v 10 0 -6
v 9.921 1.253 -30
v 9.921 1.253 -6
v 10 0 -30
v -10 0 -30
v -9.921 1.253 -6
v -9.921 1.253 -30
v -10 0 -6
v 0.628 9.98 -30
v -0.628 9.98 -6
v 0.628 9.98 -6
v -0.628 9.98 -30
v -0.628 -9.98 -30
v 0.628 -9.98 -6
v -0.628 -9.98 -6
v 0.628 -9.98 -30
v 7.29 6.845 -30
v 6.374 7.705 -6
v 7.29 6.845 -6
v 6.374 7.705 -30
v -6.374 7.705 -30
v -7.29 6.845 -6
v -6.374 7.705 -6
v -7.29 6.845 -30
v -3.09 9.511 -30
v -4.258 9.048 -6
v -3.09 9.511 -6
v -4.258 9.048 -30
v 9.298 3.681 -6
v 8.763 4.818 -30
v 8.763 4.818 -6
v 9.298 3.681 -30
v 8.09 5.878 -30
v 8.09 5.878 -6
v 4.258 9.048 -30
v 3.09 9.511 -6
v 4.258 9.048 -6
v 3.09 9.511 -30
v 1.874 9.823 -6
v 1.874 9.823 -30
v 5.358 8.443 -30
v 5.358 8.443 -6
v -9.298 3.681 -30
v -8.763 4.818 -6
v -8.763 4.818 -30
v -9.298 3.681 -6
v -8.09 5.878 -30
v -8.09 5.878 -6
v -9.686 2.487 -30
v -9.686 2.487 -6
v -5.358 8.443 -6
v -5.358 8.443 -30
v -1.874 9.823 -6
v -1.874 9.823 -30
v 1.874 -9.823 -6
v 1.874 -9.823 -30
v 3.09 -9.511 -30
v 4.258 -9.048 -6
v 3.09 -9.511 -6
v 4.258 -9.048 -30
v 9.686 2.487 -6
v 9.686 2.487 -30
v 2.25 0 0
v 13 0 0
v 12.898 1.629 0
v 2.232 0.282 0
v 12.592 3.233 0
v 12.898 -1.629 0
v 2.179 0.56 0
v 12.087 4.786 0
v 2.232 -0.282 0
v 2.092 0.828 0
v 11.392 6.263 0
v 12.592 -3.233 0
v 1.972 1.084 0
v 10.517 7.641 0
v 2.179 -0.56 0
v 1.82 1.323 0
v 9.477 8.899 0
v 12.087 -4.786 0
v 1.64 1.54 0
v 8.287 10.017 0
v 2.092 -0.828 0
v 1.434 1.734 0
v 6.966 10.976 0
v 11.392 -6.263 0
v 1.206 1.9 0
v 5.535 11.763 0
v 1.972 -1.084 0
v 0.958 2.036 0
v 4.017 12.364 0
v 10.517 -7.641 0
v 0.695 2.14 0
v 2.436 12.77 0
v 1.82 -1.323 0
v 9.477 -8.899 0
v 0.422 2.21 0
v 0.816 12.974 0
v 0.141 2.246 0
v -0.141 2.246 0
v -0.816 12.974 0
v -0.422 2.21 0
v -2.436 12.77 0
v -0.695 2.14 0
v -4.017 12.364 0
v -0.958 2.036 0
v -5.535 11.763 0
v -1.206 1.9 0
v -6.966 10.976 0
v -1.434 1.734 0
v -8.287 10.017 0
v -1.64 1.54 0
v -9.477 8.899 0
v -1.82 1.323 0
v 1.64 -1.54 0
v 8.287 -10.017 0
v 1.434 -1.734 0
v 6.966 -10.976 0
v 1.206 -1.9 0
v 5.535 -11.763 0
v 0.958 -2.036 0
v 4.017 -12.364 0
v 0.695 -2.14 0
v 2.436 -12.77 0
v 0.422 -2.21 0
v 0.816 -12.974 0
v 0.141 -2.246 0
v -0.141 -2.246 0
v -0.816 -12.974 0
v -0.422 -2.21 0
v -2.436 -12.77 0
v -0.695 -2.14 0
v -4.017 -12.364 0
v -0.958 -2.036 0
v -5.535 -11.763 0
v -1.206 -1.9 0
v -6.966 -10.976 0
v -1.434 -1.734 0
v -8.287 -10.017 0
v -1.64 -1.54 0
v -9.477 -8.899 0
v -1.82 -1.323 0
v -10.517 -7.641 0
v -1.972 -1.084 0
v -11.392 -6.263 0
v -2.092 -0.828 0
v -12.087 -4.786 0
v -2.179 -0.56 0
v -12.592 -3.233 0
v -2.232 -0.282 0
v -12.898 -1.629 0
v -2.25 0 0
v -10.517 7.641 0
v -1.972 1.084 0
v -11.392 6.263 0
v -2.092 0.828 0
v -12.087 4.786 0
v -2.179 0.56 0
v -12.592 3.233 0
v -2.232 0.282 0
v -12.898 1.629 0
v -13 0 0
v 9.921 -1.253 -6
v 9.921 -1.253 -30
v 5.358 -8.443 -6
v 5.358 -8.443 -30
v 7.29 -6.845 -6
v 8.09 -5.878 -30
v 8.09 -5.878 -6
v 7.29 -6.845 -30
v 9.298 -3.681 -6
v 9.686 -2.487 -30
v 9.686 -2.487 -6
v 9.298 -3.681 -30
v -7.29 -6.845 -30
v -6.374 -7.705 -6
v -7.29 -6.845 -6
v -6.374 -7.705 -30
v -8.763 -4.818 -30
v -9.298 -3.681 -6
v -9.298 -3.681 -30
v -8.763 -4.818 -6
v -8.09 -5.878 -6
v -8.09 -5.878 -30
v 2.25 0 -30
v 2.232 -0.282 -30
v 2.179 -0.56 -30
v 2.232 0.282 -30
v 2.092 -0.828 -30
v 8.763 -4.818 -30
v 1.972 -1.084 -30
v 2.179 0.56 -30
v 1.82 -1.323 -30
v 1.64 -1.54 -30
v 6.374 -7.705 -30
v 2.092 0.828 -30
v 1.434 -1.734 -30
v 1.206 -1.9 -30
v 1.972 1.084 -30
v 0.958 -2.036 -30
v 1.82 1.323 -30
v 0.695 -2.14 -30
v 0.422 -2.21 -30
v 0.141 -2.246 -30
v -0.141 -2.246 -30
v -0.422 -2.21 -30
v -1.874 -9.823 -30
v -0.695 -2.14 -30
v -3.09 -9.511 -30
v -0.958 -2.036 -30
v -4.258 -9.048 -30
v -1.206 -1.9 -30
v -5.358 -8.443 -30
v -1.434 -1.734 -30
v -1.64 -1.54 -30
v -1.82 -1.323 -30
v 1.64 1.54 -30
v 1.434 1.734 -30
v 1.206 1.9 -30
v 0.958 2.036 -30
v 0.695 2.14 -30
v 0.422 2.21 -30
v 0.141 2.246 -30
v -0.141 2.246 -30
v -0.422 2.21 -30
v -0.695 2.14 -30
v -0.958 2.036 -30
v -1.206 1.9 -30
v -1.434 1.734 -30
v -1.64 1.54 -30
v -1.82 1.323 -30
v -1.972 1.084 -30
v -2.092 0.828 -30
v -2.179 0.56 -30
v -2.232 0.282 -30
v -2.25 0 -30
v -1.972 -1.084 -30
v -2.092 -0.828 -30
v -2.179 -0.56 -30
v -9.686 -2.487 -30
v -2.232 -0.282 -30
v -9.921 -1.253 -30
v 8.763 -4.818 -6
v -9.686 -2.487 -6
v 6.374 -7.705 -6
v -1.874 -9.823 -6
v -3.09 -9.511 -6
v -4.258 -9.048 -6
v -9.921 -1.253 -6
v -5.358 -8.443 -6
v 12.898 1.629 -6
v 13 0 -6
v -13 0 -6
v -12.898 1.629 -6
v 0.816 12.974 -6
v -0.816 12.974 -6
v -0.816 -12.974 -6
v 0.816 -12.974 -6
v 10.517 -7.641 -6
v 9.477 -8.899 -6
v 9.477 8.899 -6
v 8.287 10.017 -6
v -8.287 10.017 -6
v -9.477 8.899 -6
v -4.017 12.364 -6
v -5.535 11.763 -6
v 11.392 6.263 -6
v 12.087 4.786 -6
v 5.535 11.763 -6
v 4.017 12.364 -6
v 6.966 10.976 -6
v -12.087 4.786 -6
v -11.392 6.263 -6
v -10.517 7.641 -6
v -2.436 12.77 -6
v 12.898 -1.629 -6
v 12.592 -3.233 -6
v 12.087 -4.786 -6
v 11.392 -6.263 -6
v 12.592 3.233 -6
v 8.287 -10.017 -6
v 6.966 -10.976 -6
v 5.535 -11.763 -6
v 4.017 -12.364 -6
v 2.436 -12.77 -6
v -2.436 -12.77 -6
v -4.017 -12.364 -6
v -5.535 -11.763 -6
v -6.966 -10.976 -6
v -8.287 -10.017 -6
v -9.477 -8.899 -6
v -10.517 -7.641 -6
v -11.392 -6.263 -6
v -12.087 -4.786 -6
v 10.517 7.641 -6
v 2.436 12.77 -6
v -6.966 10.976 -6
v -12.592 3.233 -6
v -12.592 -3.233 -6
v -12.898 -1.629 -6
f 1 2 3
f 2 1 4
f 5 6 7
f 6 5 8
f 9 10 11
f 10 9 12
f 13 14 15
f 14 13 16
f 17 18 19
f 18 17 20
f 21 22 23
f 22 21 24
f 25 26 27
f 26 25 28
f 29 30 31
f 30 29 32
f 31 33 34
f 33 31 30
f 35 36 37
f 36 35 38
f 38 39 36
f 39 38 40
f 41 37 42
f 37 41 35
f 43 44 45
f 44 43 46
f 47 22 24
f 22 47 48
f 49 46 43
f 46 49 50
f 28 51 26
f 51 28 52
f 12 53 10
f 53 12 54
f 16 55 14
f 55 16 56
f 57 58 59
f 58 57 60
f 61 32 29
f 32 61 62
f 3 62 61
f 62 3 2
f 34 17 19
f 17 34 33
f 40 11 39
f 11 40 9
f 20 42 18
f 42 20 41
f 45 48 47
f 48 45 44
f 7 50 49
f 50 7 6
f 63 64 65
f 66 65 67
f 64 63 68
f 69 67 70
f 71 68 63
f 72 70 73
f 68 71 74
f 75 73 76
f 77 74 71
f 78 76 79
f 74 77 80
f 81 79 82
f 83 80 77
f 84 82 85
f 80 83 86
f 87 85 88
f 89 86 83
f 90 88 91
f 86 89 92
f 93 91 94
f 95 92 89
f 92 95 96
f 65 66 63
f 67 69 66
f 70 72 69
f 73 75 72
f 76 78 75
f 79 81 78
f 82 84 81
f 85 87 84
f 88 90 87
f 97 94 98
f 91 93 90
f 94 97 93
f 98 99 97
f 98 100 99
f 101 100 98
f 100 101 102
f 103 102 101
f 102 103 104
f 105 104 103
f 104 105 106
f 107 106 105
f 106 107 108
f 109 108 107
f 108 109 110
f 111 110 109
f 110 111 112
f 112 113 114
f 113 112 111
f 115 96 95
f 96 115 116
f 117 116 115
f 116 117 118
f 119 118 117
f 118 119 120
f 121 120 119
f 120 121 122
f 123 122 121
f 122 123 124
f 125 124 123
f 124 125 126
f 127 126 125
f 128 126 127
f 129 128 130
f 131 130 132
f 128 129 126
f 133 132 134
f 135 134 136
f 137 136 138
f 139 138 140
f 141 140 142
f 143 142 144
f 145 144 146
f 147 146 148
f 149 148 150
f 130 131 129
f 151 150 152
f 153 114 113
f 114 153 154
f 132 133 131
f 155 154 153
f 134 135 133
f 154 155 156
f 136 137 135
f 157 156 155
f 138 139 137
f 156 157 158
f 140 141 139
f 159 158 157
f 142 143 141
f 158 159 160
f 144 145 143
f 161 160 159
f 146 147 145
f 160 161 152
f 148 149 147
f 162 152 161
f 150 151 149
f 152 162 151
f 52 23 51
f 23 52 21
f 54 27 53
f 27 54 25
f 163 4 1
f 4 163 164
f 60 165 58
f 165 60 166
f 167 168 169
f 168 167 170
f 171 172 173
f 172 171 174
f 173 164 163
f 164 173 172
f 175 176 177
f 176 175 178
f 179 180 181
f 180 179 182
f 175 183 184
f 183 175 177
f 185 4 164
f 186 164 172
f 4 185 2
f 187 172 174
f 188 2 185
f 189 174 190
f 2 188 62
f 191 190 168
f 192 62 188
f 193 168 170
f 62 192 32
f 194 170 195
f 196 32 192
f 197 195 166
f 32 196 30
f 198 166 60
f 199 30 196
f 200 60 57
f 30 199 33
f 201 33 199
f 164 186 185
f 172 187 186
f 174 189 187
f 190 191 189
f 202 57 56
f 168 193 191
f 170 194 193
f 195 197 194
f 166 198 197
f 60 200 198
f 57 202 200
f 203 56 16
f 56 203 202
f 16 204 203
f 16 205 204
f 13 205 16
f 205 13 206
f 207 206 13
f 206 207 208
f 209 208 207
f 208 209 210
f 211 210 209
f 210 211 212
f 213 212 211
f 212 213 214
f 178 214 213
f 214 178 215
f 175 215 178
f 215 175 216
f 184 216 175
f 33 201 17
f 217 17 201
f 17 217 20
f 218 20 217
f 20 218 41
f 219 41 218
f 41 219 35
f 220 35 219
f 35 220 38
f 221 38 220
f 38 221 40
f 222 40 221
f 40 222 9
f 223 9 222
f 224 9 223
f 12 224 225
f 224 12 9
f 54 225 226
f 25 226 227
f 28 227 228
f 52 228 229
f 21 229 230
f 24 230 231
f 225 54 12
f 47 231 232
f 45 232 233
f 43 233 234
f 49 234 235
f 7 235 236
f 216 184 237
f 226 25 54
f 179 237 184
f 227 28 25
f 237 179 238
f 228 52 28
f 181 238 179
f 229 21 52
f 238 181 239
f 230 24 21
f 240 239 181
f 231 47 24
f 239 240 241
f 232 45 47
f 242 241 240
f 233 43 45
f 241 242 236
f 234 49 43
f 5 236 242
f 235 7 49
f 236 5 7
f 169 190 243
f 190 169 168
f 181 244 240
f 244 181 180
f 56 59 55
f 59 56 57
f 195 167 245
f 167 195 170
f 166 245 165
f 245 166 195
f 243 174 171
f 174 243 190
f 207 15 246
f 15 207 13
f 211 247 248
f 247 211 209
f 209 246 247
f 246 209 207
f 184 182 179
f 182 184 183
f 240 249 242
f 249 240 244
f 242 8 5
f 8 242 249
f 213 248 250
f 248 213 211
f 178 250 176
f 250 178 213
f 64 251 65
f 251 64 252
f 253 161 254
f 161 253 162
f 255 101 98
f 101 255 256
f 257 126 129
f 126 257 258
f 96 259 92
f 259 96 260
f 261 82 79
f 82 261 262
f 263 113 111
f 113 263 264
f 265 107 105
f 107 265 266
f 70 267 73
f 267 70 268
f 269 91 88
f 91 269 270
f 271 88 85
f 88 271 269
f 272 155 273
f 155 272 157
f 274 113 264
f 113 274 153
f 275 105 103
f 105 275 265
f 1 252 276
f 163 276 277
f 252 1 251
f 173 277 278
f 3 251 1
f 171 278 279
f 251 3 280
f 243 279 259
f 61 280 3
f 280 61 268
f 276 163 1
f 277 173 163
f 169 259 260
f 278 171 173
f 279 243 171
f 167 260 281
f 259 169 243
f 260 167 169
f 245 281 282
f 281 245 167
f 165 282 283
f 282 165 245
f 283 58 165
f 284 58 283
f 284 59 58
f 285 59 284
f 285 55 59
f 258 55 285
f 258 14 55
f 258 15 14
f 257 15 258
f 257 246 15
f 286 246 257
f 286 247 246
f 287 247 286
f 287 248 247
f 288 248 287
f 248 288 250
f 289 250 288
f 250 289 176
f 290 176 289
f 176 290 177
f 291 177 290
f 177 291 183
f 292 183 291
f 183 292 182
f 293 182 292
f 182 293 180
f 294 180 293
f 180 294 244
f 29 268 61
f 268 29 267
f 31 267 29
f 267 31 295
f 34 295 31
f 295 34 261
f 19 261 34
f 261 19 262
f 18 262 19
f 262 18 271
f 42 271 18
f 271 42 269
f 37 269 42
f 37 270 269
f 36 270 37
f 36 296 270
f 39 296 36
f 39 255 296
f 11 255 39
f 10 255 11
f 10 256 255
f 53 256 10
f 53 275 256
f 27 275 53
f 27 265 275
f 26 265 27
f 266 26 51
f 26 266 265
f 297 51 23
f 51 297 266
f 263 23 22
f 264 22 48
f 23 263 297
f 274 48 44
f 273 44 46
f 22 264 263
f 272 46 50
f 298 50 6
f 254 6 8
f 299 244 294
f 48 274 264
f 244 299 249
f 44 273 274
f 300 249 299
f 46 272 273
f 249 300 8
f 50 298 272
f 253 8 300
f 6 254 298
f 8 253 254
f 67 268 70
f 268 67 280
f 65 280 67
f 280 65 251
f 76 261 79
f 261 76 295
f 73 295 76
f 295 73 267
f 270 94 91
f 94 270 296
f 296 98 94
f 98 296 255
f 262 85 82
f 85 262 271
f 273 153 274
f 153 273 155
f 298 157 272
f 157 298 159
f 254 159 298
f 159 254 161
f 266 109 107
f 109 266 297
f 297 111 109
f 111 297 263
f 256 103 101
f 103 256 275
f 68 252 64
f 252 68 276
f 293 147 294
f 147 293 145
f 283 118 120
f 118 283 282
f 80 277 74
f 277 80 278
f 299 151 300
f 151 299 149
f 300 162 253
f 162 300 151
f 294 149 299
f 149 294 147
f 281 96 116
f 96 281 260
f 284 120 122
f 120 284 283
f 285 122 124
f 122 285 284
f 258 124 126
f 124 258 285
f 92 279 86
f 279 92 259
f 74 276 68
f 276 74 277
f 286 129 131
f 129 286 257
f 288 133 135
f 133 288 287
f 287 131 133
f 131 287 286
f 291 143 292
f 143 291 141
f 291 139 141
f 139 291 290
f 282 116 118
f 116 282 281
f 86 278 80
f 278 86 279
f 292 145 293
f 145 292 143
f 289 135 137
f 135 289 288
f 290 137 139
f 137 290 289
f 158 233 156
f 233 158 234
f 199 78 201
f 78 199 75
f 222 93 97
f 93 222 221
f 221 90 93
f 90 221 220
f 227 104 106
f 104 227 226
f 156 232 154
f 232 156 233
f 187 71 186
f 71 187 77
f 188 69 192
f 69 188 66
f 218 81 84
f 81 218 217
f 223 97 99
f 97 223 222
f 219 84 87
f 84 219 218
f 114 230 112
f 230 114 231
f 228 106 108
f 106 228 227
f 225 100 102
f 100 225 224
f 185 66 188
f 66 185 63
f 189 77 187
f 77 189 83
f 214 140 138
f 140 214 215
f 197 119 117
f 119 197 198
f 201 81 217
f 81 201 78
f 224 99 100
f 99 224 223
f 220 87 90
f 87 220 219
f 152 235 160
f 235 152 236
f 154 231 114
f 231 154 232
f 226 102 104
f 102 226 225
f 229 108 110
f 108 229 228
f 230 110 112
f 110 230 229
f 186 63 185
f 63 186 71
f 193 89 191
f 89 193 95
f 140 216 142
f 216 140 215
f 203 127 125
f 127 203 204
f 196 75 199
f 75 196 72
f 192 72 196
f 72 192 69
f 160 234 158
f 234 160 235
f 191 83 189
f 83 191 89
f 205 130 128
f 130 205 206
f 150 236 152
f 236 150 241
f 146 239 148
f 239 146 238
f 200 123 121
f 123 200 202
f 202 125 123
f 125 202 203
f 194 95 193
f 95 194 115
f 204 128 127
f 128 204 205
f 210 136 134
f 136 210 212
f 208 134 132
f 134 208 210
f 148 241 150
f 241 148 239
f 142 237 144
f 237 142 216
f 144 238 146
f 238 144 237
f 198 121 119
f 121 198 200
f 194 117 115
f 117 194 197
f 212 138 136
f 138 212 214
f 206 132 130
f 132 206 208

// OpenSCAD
$fn = 50;


difference() {
	union() {
		translate(v = [0, 0, -30.0000000000]) {
			cylinder(h = 30, r = 10.0000000000);
		}
		translate(v = [0, 0, -6.0000000000]) {
			cylinder(h = 6, r = 13.0000000000);
		}
	}
	union() {
		#translate(v = [0, 0, -30]) {
			cylinder(h = 30, r = 2.2500000000);
		}
	}
}
